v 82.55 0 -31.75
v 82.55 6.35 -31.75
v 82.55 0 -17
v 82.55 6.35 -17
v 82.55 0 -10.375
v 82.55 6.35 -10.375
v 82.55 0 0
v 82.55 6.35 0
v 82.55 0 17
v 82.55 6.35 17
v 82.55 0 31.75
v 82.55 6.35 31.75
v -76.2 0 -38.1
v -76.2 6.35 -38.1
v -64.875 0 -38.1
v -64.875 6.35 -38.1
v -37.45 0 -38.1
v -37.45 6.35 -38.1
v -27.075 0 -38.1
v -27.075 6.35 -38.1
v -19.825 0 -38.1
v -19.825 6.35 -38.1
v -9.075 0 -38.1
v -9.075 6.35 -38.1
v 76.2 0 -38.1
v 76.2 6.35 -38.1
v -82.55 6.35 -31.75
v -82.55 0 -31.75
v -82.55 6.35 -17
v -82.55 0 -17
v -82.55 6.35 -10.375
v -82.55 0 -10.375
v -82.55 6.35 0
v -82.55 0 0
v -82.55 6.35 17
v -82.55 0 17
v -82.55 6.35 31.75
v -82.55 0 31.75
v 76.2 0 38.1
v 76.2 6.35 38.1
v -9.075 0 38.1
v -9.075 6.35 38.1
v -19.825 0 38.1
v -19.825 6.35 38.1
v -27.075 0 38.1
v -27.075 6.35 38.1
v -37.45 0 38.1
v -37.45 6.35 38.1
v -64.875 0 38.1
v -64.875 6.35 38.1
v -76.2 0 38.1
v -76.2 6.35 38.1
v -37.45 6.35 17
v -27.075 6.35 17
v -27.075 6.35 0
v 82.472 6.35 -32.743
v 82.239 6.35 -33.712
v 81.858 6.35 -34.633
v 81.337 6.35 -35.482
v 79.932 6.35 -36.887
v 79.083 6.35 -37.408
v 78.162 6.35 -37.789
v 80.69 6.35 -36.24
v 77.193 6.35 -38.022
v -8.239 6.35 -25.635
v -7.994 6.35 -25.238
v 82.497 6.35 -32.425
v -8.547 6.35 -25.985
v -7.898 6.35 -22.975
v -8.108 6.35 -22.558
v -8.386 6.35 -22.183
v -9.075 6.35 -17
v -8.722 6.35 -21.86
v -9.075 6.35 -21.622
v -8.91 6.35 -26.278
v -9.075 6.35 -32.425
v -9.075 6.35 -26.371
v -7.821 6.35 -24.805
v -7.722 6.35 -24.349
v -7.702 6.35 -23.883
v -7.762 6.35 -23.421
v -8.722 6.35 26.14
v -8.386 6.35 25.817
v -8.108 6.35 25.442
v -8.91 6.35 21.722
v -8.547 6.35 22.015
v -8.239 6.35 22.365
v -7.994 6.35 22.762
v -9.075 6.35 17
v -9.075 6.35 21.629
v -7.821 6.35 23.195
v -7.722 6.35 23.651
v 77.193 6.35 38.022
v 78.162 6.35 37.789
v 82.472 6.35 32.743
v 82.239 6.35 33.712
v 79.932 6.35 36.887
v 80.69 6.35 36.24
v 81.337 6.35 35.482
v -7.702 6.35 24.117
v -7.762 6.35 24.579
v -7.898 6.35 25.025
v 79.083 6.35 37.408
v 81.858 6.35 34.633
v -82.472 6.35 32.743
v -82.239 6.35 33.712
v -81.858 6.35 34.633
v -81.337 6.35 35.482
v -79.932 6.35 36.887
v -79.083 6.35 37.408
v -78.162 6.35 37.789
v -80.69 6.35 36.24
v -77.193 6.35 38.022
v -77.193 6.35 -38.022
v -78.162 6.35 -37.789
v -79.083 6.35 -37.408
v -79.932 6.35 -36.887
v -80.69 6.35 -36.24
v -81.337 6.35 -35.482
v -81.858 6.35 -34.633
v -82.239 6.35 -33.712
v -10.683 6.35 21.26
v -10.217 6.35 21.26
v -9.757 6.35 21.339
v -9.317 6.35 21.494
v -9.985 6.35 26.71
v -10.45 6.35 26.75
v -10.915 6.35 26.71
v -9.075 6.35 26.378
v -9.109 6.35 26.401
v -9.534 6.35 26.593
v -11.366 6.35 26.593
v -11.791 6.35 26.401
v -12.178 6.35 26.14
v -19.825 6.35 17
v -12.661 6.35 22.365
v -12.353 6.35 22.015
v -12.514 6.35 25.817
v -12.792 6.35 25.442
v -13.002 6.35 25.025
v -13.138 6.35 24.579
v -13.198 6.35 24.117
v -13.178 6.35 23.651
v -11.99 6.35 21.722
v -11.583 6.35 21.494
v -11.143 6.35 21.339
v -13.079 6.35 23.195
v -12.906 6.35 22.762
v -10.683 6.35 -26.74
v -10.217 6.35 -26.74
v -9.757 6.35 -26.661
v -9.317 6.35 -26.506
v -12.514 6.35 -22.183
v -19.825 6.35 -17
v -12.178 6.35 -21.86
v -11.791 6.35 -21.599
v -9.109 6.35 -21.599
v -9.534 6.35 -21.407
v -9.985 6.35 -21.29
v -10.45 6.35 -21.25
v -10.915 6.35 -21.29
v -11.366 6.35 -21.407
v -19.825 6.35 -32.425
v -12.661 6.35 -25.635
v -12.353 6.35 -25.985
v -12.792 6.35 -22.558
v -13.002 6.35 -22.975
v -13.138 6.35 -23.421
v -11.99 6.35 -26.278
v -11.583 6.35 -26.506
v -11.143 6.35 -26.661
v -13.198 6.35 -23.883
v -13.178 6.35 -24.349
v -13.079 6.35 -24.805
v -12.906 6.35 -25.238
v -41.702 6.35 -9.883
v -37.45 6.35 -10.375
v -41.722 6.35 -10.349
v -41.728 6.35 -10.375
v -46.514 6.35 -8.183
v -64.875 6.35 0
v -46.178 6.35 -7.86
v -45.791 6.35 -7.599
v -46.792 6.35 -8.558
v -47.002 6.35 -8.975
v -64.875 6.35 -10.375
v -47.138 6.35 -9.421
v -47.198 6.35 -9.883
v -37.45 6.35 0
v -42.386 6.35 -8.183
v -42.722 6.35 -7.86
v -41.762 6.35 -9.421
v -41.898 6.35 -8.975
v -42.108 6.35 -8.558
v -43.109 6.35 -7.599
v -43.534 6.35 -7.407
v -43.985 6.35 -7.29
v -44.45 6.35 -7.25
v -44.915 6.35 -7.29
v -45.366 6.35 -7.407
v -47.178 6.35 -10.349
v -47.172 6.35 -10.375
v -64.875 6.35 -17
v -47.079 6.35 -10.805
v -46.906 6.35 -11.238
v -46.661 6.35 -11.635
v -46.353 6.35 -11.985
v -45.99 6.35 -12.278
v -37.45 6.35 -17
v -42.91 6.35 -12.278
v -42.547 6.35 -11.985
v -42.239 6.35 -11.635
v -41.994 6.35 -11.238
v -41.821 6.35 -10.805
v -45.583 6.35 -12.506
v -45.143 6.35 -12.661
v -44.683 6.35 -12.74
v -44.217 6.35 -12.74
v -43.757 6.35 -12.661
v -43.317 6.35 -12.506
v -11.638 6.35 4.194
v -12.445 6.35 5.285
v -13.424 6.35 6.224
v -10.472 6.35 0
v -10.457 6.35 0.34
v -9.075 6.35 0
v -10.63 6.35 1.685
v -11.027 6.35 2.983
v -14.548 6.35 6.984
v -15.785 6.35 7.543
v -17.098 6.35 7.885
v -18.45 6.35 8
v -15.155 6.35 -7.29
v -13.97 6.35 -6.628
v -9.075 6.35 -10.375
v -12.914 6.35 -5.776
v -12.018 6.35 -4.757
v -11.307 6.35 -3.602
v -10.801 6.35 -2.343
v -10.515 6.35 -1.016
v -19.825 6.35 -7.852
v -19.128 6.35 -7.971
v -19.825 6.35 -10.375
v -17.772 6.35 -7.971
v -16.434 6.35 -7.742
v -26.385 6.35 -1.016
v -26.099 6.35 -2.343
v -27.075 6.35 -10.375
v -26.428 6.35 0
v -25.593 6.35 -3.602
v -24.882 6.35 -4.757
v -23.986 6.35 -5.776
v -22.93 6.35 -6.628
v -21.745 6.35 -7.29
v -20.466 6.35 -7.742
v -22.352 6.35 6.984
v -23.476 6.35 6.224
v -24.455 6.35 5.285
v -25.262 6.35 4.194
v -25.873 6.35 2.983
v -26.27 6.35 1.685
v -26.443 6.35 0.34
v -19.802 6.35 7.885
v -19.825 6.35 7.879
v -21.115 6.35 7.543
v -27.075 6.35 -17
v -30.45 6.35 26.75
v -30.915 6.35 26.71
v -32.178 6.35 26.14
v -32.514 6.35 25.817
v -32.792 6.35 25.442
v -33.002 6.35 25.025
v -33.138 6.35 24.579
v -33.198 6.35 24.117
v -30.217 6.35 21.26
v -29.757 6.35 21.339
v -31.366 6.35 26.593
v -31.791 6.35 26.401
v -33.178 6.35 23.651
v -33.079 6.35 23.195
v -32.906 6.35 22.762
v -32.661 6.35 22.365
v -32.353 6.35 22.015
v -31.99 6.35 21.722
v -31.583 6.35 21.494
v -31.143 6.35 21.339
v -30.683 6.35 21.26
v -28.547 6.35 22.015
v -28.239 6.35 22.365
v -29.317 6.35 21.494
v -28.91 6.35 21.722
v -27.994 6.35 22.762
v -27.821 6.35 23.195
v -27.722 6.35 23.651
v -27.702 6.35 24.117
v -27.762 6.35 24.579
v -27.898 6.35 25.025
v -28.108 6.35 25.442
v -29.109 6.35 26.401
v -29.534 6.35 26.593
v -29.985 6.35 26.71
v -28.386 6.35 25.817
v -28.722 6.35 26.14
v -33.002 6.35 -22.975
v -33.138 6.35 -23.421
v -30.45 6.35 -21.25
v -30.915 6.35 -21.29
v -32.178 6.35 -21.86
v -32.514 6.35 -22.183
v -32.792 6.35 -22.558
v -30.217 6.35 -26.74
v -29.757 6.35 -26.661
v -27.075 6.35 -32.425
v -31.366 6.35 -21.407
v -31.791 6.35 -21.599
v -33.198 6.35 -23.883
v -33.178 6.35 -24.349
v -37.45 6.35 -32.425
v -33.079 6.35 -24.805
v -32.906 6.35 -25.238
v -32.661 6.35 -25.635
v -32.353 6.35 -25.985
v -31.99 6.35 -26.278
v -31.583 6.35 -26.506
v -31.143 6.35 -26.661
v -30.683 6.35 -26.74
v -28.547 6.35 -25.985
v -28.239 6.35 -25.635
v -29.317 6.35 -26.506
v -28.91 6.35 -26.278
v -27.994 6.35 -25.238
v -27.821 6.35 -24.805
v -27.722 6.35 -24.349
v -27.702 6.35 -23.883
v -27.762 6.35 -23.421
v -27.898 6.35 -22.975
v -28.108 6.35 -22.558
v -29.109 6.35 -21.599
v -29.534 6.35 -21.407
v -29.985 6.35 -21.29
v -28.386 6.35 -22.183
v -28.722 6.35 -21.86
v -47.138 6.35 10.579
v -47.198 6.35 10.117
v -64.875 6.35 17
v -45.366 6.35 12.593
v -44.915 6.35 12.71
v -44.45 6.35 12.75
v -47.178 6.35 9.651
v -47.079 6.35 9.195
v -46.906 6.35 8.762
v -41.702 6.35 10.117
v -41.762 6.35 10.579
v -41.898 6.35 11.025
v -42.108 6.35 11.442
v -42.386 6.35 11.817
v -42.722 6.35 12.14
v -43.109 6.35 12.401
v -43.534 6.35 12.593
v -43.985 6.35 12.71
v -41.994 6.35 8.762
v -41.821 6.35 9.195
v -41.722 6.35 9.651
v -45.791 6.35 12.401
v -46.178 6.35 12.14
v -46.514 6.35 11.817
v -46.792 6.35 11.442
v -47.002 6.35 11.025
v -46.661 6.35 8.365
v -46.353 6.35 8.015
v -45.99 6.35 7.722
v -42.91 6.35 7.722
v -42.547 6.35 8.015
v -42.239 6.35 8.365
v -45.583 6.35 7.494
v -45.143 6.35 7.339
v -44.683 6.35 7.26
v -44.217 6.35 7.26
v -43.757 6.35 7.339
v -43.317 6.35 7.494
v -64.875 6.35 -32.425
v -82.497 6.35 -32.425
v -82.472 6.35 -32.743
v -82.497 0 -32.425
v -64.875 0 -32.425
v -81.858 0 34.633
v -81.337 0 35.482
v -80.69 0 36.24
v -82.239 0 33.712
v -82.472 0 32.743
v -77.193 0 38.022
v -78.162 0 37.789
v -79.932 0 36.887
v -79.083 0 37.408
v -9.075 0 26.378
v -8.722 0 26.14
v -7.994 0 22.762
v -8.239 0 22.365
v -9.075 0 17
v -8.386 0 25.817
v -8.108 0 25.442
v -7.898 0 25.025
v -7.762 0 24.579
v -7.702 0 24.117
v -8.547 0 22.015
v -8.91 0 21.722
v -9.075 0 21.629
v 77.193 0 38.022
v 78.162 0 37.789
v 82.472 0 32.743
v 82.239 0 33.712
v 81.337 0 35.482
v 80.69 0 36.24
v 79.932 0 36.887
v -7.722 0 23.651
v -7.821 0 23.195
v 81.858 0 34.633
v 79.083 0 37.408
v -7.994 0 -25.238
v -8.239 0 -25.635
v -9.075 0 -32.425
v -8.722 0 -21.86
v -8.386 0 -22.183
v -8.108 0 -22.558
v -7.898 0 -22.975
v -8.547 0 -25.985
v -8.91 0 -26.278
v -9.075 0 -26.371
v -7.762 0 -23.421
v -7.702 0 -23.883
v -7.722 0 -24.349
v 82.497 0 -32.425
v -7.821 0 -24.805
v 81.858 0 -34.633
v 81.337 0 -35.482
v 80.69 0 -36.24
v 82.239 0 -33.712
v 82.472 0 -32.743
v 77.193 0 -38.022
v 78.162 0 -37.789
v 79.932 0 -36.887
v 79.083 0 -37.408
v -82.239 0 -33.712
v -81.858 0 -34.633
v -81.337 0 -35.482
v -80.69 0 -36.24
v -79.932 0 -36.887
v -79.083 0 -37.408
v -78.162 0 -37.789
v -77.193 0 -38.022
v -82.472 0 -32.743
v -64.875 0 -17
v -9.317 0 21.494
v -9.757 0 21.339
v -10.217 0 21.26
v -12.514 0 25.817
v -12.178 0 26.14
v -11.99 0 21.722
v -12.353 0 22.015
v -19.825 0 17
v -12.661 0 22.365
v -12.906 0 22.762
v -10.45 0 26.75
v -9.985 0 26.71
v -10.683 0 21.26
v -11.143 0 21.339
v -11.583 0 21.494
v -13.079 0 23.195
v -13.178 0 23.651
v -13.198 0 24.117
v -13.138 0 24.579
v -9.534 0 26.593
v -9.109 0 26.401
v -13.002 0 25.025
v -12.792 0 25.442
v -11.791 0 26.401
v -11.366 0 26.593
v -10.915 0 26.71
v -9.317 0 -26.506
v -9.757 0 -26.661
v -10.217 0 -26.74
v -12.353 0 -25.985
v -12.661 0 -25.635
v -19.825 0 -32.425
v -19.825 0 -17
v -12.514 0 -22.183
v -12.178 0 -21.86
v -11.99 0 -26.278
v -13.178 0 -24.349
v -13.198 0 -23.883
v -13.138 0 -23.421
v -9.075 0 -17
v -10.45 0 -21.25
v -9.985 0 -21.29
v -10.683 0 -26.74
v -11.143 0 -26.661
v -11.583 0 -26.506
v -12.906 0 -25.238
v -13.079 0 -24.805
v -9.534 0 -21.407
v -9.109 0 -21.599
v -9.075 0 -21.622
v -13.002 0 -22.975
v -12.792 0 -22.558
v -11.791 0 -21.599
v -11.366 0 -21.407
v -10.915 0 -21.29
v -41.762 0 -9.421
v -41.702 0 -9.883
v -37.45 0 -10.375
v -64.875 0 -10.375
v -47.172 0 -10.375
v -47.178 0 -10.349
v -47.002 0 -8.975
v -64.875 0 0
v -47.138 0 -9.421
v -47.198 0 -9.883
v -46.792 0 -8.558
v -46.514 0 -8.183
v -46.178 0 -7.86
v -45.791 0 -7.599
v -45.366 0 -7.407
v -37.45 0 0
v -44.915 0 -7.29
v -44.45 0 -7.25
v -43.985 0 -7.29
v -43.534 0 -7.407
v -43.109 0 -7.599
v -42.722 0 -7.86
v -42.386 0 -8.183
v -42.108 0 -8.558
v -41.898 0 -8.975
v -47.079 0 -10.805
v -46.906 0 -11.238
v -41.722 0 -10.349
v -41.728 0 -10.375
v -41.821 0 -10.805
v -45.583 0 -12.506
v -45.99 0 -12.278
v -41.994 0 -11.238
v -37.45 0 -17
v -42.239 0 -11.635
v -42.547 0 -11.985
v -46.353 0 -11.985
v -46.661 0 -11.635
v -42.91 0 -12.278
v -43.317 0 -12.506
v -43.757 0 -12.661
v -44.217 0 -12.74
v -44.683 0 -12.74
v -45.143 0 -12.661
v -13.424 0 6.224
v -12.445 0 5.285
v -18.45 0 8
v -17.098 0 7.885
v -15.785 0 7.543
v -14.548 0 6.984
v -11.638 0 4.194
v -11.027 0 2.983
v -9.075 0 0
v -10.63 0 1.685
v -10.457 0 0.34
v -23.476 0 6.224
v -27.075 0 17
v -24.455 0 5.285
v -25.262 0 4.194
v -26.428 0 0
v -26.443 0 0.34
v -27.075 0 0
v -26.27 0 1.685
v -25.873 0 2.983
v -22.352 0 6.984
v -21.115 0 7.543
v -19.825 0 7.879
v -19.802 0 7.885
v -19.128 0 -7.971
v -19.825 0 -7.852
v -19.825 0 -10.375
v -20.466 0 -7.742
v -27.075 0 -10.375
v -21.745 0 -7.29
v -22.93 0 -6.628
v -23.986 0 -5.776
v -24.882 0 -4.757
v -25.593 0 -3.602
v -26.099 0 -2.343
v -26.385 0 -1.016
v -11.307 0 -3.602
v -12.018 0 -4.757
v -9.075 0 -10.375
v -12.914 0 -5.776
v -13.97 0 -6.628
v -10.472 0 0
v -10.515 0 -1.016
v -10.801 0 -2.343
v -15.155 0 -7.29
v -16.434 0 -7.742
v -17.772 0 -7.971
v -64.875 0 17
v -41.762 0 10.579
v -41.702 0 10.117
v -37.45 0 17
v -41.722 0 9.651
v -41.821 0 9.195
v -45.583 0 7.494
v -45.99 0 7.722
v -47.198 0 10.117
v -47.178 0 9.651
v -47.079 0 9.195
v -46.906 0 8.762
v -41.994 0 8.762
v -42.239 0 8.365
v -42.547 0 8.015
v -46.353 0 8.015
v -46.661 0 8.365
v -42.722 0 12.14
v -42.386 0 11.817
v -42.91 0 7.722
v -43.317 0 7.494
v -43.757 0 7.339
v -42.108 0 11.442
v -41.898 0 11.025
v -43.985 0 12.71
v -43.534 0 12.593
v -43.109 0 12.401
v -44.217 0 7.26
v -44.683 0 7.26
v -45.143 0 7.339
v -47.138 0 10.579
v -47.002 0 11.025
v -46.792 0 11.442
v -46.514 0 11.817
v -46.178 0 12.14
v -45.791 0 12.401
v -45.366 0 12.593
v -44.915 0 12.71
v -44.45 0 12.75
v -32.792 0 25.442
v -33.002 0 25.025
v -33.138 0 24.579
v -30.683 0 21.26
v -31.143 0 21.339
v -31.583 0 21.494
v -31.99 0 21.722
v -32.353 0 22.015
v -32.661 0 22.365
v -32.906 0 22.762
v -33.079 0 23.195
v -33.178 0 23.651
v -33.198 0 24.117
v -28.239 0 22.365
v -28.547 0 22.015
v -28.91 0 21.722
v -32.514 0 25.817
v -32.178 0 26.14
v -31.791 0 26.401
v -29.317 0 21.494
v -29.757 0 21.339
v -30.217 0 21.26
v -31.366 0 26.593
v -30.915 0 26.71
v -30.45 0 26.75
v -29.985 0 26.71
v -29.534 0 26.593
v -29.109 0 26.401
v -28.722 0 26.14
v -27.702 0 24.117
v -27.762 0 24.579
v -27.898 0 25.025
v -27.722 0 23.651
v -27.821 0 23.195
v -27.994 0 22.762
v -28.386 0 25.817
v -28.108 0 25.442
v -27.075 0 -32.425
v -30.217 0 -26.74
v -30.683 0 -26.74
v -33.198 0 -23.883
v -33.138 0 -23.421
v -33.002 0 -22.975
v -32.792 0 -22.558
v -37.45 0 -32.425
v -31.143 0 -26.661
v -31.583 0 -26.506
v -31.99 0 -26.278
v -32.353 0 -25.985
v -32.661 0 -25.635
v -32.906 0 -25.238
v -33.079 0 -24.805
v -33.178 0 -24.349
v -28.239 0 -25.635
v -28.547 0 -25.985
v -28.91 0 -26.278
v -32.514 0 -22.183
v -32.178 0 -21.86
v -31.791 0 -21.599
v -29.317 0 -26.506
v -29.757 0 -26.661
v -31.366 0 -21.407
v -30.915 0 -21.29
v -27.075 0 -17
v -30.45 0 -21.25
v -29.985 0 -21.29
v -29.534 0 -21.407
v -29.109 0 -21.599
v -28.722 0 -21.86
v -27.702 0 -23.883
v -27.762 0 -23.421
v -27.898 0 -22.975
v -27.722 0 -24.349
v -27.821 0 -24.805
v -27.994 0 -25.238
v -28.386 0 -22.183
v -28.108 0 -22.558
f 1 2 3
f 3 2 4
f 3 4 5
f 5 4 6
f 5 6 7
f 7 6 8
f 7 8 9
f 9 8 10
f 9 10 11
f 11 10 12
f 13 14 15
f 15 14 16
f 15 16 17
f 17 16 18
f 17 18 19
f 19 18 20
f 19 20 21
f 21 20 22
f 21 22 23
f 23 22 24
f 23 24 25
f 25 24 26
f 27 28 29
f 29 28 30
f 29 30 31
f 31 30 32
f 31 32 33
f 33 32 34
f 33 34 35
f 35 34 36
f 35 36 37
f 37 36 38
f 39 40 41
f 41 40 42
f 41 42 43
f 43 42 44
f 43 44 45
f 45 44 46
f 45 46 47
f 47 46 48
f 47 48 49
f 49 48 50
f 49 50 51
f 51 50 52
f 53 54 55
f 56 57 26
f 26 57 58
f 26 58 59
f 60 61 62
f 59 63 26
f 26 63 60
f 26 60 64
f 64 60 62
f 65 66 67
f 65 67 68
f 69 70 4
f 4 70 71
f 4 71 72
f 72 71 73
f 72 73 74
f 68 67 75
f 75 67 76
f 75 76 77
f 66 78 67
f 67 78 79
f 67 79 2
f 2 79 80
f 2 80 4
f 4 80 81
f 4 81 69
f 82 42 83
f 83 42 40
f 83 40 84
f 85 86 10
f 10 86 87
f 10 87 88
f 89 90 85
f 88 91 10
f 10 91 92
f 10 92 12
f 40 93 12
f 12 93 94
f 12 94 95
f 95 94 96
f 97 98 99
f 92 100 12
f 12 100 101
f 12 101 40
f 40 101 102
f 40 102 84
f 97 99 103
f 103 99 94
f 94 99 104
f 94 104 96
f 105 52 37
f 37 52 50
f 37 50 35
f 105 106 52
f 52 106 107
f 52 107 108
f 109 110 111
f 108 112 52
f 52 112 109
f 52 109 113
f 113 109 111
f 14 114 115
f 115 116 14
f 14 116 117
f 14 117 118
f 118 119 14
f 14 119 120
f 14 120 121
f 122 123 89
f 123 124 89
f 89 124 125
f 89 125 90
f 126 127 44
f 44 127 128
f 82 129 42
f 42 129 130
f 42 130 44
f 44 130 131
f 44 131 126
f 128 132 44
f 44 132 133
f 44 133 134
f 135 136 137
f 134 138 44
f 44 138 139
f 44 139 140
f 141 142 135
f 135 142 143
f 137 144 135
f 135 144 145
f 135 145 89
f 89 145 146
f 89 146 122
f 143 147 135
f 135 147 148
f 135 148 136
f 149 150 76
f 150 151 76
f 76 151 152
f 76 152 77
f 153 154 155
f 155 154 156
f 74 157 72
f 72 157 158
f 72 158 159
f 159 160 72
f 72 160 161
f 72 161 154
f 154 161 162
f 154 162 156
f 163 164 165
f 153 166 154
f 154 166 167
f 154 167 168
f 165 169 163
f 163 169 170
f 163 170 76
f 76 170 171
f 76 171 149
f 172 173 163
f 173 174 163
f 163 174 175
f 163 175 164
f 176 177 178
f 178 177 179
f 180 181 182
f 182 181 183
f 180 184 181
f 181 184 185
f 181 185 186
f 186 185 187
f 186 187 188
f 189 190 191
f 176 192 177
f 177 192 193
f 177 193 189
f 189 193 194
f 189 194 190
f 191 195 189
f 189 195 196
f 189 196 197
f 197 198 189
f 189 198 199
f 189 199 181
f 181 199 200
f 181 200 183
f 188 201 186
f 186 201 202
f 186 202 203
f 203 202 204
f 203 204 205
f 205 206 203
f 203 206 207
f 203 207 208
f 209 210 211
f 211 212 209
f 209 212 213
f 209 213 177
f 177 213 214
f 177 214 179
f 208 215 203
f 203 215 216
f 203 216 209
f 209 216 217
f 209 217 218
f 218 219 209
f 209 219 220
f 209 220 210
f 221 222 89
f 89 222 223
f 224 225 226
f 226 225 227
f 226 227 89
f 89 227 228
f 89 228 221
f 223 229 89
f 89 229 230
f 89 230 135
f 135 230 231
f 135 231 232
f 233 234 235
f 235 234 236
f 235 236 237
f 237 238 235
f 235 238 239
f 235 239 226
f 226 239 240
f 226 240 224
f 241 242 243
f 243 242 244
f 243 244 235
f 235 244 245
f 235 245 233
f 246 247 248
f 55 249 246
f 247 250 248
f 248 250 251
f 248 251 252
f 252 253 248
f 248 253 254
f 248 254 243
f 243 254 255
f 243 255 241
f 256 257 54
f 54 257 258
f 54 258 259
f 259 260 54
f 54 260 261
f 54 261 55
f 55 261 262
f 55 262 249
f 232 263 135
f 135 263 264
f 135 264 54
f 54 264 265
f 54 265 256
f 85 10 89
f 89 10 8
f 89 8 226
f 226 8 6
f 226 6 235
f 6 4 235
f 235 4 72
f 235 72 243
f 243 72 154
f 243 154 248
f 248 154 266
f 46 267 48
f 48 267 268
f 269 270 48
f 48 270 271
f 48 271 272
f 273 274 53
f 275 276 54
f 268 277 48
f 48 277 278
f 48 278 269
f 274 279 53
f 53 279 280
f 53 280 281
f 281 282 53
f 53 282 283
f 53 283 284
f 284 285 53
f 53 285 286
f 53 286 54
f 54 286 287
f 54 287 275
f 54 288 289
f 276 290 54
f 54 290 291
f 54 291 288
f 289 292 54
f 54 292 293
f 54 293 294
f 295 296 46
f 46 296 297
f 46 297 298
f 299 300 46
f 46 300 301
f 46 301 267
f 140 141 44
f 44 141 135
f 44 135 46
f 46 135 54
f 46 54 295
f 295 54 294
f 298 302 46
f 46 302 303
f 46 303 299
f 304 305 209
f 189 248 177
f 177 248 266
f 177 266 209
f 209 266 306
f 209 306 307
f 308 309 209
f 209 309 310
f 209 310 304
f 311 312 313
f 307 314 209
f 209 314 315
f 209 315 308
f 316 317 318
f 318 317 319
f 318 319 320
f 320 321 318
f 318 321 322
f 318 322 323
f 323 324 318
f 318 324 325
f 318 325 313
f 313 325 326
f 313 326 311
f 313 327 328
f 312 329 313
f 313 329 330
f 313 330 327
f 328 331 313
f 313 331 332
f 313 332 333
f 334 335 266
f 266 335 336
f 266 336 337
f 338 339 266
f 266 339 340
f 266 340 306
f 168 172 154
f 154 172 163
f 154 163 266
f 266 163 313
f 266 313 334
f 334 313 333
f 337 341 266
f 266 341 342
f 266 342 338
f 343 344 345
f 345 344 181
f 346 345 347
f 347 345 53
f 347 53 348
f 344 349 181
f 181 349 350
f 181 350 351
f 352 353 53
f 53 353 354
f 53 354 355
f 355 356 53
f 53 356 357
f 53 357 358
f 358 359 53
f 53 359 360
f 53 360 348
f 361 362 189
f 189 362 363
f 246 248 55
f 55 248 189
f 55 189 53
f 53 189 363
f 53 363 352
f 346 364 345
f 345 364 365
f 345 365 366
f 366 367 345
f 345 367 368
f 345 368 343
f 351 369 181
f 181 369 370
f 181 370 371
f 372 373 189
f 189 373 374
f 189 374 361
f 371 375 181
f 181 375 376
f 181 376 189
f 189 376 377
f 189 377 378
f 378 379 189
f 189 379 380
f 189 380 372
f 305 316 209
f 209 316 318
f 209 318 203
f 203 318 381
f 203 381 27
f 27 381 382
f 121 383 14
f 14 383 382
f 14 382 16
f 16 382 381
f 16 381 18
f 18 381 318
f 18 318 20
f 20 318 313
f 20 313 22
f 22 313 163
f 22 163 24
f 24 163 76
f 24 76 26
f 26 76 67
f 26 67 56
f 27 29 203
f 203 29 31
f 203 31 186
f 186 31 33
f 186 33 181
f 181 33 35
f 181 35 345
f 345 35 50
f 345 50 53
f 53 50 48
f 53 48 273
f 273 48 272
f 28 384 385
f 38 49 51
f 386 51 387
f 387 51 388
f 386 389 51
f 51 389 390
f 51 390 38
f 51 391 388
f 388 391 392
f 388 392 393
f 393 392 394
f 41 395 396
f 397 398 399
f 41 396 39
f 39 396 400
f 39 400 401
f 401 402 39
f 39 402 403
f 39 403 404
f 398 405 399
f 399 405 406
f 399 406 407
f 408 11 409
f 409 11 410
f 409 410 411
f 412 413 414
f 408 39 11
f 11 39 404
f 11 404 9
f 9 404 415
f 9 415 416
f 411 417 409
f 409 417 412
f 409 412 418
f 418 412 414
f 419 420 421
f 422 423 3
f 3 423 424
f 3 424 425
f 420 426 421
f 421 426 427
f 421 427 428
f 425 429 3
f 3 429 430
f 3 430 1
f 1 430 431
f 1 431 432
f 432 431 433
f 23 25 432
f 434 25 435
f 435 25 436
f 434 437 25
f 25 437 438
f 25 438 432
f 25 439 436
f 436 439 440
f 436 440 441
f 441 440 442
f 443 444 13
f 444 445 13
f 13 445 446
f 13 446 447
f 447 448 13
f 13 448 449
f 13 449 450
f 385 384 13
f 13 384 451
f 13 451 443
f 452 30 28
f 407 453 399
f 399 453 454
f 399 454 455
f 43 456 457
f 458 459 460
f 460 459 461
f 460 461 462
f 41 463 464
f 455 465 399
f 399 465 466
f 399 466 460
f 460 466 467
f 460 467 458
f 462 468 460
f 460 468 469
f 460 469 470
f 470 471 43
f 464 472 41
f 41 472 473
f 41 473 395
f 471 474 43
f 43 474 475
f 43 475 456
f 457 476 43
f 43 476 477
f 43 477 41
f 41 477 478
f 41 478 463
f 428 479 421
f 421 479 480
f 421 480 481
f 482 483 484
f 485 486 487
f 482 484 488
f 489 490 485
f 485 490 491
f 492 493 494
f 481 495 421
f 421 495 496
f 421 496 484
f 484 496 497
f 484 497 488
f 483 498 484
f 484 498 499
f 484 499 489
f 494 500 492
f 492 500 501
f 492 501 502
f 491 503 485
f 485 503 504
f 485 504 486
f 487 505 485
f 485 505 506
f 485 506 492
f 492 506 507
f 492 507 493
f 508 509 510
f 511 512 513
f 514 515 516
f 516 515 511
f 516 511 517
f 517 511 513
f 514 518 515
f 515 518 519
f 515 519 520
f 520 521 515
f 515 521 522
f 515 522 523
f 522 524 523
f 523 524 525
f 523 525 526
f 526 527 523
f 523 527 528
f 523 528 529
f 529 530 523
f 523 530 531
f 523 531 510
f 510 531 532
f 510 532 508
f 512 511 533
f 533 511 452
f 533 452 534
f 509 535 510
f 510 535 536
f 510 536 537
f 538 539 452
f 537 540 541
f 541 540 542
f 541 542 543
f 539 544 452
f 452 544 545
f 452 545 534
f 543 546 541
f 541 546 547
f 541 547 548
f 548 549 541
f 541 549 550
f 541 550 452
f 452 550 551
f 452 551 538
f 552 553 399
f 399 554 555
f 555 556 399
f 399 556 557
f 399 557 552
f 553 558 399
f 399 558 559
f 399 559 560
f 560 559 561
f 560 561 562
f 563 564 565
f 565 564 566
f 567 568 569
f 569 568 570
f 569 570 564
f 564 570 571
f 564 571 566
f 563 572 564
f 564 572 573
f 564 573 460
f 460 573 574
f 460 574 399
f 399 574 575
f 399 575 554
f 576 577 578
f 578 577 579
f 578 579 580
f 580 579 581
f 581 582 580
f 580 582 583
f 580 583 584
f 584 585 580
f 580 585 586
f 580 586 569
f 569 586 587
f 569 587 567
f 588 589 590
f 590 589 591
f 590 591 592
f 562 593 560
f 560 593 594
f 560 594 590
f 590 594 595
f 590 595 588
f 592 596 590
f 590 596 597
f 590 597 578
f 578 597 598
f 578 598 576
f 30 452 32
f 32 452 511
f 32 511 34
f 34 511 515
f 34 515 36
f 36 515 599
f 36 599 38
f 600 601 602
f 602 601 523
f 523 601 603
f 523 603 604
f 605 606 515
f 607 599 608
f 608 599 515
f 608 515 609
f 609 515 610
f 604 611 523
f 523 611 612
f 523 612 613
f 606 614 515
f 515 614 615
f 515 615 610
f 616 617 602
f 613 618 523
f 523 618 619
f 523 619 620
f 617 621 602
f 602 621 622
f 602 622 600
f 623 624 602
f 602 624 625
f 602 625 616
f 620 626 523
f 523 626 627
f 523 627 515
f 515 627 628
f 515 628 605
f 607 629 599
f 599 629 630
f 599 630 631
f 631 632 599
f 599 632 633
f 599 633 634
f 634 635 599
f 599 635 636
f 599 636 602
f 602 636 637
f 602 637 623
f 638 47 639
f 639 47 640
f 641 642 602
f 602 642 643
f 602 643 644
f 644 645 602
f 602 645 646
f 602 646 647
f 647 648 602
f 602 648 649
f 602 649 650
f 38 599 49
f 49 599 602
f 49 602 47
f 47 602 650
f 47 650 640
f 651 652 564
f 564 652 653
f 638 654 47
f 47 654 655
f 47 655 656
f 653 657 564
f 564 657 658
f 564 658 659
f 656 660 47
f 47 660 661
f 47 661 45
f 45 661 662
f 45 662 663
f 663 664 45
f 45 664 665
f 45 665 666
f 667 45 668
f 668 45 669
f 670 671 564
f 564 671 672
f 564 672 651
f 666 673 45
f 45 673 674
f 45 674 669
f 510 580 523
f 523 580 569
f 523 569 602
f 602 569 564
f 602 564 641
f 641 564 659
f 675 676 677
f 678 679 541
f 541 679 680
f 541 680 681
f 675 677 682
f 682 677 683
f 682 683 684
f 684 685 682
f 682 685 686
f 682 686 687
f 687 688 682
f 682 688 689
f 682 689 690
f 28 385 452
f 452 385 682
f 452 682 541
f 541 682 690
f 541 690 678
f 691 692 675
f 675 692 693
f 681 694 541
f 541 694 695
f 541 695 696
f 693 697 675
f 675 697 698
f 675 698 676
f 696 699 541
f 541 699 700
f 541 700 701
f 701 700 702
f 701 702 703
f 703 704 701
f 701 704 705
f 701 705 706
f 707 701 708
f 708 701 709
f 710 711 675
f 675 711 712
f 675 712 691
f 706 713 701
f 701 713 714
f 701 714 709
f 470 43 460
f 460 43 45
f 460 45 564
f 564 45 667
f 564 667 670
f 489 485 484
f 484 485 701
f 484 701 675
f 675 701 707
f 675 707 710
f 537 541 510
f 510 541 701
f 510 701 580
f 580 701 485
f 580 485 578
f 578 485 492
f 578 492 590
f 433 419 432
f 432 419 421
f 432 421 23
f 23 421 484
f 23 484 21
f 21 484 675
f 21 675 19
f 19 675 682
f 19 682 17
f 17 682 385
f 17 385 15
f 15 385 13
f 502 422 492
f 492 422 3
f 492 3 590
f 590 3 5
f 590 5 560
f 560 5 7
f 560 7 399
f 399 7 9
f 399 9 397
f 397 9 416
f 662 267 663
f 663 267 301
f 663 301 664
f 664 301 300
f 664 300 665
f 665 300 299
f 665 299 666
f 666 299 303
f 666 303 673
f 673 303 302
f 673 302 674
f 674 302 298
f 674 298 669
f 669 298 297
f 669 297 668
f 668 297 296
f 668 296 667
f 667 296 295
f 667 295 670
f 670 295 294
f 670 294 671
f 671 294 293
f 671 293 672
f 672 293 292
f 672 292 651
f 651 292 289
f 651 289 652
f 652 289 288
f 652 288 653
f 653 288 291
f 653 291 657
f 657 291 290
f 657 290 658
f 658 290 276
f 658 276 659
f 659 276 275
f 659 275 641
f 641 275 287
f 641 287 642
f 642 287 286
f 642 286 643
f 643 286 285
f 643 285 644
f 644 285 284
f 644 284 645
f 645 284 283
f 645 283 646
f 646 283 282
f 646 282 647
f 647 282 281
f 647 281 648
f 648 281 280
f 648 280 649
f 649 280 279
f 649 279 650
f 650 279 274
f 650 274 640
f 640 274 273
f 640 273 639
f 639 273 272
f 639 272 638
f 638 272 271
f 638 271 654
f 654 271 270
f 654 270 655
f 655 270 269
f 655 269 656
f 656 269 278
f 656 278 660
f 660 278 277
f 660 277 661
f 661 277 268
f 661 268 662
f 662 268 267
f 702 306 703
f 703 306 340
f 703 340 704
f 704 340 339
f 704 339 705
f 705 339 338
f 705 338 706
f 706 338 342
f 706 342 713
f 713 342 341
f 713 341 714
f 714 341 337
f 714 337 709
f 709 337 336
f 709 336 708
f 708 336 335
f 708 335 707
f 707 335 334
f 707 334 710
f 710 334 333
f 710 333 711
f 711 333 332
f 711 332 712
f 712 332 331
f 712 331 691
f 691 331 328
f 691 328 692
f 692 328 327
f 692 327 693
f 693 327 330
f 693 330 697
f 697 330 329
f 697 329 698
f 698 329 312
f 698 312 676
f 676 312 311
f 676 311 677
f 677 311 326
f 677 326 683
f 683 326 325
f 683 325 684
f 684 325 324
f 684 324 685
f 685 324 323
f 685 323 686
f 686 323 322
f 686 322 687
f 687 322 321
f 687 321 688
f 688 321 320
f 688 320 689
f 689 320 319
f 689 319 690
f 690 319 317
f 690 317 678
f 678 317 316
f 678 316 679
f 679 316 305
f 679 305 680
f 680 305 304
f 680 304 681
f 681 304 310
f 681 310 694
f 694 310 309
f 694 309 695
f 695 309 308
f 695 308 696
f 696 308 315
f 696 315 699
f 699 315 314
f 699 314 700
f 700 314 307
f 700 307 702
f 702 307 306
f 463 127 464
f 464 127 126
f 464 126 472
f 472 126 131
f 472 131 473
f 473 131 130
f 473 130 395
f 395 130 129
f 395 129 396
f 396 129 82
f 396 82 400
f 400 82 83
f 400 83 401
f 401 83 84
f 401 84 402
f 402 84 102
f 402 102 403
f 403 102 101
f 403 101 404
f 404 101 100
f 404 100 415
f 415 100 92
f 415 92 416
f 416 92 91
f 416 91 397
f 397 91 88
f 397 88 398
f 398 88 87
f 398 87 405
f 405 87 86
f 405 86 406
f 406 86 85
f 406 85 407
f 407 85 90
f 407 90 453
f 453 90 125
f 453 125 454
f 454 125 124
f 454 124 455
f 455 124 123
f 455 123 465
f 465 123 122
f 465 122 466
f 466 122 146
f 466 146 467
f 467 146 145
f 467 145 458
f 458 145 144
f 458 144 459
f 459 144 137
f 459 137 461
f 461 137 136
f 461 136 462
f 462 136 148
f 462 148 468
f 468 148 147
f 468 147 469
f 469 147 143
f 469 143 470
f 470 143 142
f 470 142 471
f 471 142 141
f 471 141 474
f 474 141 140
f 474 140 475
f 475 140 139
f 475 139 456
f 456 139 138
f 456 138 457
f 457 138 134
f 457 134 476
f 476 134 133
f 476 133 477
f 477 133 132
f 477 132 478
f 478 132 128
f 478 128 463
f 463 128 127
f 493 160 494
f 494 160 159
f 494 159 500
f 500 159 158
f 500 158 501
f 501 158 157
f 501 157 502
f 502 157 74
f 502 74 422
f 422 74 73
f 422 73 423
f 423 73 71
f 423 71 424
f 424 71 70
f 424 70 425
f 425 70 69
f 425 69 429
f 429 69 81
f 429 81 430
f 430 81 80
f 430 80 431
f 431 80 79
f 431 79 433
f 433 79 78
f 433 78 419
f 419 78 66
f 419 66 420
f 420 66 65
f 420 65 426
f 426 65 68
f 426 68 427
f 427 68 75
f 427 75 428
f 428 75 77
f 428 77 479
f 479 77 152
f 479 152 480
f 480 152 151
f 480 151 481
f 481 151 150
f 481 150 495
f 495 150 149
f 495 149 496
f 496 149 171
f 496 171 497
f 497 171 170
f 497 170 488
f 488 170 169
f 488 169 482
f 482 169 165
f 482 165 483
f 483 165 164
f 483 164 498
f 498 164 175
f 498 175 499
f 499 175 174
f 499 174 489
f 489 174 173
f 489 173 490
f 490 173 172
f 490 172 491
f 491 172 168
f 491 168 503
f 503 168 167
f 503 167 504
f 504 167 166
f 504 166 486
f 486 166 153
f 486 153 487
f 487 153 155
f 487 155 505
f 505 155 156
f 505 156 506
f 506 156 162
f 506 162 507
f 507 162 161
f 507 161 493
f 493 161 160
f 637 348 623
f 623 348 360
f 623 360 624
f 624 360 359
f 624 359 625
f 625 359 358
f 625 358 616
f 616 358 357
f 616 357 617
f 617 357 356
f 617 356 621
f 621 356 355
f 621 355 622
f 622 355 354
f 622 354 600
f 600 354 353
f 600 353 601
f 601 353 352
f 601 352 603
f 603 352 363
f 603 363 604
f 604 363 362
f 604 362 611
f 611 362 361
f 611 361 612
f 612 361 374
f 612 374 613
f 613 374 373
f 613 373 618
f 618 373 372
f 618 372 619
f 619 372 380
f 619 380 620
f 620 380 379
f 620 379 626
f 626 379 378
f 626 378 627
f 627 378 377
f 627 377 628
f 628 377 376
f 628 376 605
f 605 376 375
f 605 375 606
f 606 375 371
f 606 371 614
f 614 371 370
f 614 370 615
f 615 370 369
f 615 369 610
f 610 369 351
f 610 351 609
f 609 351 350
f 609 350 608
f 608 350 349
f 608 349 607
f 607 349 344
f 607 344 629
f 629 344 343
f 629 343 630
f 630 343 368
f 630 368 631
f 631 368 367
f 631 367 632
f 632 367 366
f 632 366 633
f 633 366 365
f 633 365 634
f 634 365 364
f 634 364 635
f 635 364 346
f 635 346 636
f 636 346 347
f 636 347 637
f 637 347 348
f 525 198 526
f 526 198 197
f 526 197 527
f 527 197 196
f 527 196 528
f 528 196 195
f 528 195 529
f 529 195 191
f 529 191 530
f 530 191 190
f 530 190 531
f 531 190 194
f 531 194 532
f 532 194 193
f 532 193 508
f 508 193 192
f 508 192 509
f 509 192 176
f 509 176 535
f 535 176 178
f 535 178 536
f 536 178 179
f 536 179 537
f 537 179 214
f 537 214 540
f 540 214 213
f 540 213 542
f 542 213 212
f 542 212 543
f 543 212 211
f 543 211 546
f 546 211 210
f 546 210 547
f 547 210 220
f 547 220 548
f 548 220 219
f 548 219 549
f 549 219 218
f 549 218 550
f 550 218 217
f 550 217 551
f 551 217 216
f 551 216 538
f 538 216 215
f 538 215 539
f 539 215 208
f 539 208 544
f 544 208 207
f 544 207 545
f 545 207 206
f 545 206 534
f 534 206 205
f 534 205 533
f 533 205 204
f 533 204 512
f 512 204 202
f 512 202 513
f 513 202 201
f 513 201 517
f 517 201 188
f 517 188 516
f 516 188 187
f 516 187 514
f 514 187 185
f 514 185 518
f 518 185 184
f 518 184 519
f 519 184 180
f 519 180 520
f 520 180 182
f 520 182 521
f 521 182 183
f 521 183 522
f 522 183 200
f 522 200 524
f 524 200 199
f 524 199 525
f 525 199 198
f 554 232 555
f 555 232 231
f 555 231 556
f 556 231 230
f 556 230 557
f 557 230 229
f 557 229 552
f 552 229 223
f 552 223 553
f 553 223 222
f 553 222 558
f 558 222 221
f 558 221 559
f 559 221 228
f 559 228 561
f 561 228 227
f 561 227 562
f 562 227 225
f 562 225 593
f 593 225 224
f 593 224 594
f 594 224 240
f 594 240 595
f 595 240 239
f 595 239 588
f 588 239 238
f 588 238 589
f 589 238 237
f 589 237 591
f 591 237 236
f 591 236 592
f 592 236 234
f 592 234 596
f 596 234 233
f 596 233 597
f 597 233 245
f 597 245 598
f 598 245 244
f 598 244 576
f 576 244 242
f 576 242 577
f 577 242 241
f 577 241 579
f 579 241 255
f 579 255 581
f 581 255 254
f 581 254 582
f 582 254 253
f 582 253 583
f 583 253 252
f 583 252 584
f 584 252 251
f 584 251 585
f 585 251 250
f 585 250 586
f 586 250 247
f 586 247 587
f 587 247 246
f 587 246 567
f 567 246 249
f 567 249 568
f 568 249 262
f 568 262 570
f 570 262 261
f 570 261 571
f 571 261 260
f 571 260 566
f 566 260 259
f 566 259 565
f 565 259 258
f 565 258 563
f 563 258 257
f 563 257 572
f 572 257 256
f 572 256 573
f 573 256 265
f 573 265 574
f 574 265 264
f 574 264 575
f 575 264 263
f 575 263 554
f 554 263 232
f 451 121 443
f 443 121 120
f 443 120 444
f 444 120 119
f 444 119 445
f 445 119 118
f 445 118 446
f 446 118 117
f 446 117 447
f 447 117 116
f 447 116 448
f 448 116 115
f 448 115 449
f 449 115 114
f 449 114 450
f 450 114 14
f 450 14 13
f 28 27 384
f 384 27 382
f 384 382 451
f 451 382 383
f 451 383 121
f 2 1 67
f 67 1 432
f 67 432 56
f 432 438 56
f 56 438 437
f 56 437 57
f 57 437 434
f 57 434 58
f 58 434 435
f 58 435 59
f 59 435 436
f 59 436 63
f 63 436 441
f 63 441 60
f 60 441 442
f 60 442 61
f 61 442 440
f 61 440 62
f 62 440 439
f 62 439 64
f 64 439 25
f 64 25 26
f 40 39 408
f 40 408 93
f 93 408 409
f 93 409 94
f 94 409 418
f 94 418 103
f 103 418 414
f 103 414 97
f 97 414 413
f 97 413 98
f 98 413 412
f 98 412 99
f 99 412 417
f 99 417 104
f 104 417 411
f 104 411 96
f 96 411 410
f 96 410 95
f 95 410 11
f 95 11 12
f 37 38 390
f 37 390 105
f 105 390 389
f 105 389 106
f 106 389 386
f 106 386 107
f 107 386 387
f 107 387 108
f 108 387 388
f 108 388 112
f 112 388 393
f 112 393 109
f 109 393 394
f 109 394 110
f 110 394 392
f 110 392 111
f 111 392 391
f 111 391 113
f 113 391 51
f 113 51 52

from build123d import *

# Parameters (mm, degrees)
SKETCH1_W                = 165.1
SKETCH1_H                = 76.2
BOSS_EXTRUDE1_DEPTH      = 6.35
M5_CLEARANCE_HOLE1_D     = 5.5
M5_CLEARANCE_HOLE1_DEPTH = 12.7
M5_CLEARANCE_HOLE1_TIP   = 1.652366702
SKETCH5_R                = 8
CUT_EXTRUDE1_DEPTH       = 6.35
FILLET1_R                = 6.35


with BuildPart() as part:
    # Sketch1 → Boss-Extrude1 (new body)
    with BuildSketch(Plane(origin=(0, 0, 0), x_dir=(1, 0, 0), z_dir=(0, 1, 0))):
        Rectangle(SKETCH1_W, SKETCH1_H)
    extrude(amount=BOSS_EXTRUDE1_DEPTH)

    # M5 Clearance Hole1
    with Locations(Plane(origin=(0, 6.35, 0), x_dir=(1, 0, 0), z_dir=(0, 1, 0))):
        with Locations((-44.45, 10), (-44.45, -10), (-18.45, 0), (-10.45, 23.999999994), (-10.45, -24.000000006), (-30.45, 23.999999994), (-30.45, -24.000000006)):
            Hole(M5_CLEARANCE_HOLE1_D / 2, depth=M5_CLEARANCE_HOLE1_DEPTH)
            with Locations((0, 0, -(M5_CLEARANCE_HOLE1_DEPTH + M5_CLEARANCE_HOLE1_TIP / 2))):  # 118° drill point
                Cone(0, M5_CLEARANCE_HOLE1_D / 2, M5_CLEARANCE_HOLE1_TIP, mode=Mode.SUBTRACT)

    # Sketch5 → Cut-Extrude1 (cut)
    with BuildSketch(Plane(origin=(0, 6.35, 0), x_dir=(1, 0, 0), z_dir=(0, 1, 0))):
        with Locations(Location((-18.45, 0, 0), (0, 0, 270))):
            Circle(SKETCH5_R)
    extrude(amount=-CUT_EXTRUDE1_DEPTH, mode=Mode.SUBTRACT)

    # Fillet1
    fillet1_edges = [part.edges().sort_by_distance(p)[0] for p in [
        (82.55, 3.175, 38.1),
        (-82.55, 3.175, 38.1),
        (-82.55, 3.175, -38.1),
        (82.55, 3.175, -38.1),
    ]]
    fillet(fillet1_edges, radius=FILLET1_R)


solid = part.part
